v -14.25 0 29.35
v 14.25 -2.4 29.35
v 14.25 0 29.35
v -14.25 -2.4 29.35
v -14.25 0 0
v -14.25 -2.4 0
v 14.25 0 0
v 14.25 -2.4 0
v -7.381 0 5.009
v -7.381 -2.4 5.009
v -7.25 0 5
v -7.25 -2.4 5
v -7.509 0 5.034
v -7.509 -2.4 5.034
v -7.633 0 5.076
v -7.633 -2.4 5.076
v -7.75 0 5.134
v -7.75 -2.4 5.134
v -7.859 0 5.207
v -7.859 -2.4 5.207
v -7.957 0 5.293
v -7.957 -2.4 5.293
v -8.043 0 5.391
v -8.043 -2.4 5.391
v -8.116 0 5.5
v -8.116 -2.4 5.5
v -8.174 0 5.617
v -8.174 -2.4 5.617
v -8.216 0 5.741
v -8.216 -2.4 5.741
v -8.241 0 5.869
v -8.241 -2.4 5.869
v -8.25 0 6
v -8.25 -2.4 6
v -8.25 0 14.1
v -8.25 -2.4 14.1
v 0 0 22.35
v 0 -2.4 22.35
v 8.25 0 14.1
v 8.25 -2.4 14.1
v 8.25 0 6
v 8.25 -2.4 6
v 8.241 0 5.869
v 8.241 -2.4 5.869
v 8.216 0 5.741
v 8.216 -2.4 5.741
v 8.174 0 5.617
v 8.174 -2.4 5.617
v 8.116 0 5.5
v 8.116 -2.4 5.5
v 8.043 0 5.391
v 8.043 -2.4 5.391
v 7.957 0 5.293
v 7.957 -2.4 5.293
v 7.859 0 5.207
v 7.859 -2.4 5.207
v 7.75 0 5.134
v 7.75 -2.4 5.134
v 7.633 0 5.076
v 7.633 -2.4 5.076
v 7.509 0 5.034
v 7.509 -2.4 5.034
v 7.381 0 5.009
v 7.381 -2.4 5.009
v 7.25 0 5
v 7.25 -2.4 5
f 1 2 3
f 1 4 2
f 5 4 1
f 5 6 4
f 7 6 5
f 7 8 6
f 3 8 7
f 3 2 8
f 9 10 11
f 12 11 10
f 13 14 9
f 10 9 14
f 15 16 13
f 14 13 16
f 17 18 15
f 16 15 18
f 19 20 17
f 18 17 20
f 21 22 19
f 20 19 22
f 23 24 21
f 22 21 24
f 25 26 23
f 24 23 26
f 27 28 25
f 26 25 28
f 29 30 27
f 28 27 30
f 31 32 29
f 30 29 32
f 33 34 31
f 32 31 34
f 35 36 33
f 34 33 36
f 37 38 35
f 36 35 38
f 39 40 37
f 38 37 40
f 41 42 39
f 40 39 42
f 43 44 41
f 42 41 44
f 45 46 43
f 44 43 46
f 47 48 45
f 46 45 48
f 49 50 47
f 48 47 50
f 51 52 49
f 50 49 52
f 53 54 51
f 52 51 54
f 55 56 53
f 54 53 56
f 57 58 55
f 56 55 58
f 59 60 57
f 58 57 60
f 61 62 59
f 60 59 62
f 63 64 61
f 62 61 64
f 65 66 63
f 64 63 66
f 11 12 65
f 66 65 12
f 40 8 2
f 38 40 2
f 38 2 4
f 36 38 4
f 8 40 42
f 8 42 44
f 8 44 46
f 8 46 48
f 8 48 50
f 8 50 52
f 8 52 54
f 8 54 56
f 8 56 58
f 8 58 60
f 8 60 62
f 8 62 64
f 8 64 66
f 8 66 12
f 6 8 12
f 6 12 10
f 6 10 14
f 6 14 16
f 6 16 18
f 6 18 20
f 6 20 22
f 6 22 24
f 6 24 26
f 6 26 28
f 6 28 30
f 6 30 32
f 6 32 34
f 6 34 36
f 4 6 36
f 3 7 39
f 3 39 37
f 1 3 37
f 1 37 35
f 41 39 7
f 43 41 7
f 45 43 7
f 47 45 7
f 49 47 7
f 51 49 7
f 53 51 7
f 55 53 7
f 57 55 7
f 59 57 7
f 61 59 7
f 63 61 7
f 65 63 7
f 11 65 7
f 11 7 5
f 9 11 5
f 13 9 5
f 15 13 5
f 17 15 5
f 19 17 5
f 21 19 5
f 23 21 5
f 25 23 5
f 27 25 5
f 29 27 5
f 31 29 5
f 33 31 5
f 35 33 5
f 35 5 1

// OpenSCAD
// GENERATED by build.py --coupon. A wall-thickness plate with one slot,
// printed standing up like a wall so the pointed top prints as it would in a box.
include <../scad/enclosure.scad>
WALL = 2.4;
rotate([90, 0, 0]) linear_extrude(WALL) difference() {
  translate([-14.25, 0]) square([28.5, 29.35]);
  translate([0, 9.55]) pointed2d(16.5, 9.1, 1.0, 8.25);
}
